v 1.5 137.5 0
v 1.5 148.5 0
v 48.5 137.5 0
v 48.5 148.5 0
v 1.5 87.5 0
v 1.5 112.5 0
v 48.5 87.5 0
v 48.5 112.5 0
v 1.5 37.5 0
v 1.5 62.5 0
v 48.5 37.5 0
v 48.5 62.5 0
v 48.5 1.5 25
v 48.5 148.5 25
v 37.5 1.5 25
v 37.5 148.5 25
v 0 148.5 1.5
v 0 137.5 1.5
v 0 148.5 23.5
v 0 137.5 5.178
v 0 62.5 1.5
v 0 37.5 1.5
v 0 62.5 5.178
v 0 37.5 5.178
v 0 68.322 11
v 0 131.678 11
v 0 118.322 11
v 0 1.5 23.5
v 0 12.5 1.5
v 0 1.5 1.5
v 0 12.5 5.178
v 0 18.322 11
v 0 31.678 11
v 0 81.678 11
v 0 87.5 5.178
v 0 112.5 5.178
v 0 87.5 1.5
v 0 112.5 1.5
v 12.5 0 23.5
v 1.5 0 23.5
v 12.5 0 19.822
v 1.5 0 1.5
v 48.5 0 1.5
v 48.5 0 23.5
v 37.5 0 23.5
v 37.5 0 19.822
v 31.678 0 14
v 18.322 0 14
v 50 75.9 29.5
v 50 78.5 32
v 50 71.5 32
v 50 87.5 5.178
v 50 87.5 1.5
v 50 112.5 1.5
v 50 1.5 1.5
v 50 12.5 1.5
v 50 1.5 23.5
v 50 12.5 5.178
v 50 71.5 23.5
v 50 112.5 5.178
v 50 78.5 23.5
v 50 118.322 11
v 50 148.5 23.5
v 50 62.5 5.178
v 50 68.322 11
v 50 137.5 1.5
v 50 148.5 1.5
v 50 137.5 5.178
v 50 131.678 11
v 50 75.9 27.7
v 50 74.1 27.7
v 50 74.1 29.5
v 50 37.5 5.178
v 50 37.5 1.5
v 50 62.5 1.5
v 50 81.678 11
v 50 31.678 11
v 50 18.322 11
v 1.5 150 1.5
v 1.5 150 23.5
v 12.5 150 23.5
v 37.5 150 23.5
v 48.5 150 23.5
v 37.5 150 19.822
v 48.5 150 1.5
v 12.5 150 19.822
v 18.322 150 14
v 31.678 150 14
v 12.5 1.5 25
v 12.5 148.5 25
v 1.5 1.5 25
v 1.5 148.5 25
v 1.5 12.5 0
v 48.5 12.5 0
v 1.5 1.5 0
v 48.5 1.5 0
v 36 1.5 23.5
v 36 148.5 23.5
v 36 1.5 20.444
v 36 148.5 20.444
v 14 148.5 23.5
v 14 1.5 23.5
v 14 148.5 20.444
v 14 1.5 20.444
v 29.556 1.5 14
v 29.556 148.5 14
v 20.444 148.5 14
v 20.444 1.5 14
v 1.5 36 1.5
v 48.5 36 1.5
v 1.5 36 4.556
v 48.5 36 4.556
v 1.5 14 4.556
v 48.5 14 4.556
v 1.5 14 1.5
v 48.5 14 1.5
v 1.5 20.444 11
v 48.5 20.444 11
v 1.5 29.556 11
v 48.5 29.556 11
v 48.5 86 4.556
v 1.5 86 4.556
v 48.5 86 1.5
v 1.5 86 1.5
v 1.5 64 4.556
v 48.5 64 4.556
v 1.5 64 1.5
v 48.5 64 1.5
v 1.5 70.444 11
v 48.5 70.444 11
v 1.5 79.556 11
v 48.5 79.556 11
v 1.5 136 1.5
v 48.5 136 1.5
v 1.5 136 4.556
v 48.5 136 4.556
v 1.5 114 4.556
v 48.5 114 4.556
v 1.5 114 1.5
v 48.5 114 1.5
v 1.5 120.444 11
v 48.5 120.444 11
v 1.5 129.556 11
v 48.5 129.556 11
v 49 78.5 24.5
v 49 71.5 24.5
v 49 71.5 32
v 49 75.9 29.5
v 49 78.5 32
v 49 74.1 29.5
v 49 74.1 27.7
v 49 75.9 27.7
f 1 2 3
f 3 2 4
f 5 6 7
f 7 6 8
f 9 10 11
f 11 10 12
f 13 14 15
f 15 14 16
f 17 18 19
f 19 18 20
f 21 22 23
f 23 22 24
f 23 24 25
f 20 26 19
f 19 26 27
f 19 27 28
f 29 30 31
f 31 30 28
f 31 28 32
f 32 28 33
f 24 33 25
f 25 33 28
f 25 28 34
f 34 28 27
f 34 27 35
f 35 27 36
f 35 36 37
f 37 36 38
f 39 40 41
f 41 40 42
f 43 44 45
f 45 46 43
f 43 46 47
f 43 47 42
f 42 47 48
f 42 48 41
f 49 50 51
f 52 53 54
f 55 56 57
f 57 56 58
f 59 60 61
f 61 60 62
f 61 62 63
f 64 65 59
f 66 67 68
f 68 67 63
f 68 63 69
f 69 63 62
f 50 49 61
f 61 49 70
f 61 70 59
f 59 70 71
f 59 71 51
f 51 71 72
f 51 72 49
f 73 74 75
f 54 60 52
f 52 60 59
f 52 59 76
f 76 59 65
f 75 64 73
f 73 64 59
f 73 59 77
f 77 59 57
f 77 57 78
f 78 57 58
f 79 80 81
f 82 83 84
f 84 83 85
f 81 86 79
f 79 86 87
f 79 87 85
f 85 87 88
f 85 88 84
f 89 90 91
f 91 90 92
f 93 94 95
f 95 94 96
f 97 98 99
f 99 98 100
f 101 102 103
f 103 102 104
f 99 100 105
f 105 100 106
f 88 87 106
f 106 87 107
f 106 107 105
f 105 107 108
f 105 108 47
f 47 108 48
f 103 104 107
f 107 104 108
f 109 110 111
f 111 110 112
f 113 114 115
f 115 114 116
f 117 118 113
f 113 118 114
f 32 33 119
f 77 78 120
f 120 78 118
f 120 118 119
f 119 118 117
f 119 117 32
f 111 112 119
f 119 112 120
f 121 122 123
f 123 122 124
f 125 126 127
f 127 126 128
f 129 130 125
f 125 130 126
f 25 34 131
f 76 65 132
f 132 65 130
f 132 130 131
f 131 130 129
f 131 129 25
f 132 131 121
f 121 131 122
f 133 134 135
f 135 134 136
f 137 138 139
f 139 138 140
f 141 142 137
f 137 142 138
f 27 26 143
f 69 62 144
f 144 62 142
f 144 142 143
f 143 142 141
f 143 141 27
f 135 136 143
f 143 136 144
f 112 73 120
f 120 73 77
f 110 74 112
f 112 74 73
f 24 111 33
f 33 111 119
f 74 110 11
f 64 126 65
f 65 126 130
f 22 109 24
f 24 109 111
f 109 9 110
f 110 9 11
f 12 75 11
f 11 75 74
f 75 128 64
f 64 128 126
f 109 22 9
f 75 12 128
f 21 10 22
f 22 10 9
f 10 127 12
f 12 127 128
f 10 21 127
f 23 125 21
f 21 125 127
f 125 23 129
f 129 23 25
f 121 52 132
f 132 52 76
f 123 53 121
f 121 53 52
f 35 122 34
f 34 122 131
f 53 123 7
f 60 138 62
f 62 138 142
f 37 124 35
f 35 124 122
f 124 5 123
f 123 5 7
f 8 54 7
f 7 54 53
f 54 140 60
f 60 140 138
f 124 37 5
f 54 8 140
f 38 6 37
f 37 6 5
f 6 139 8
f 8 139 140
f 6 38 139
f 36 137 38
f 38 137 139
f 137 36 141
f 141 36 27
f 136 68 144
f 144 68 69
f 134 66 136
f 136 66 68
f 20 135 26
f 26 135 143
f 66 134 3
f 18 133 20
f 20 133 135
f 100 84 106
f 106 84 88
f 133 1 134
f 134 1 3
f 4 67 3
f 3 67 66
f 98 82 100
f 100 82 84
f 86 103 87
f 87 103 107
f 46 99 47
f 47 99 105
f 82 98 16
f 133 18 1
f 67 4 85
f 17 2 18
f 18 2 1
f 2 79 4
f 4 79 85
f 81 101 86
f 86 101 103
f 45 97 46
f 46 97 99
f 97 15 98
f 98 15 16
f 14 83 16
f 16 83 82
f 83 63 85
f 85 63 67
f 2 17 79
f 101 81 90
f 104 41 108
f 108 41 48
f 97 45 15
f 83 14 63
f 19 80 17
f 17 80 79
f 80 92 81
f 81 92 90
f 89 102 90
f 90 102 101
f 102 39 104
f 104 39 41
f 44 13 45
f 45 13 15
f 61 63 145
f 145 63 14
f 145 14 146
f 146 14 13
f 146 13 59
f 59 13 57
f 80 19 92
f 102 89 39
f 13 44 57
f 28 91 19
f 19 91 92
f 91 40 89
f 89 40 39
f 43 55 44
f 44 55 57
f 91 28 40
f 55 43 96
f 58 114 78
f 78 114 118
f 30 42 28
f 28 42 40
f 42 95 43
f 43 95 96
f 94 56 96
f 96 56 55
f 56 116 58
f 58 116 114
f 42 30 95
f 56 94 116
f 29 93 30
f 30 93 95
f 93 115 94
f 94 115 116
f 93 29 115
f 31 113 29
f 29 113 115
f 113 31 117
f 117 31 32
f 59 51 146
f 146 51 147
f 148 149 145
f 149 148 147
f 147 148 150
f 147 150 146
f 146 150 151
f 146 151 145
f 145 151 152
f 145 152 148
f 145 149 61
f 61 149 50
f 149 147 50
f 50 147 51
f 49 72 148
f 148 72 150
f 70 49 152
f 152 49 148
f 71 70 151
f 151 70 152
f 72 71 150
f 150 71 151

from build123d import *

# Parameters (mm, degrees)
SKETCH1_W                = 50
SKETCH1_H                = 150
BOSS_EXTRUDE1_DEPTH      = 25
CUT_EXTRUDE1_DEPTH       = 161.078105936
CUT_EXTRUDE2_DEPTH       = 161.078105936
LPATTERN1_COUNT          = 3
LPATTERN1_PITCH          = 50
CHAMFER1_SIZE            = 1.5
BOSS_EXTRUDE2_DEPTH      = 7
BOSS_EXTRUDE2_DEPTH_BACK = 10
SKETCH4_W                = 1
SKETCH4_H                = 7
SKETCH5_W                = 1.8
SKETCH5_H                = 1.8
CUT_EXTRUDE3_DEPTH       = 7


with BuildPart() as part:
    # Sketch1 → Boss-Extrude1 (new body)
    with BuildSketch(Plane.XY):
        with Locations((25, 75)):
            Rectangle(SKETCH1_W, SKETCH1_H)
    extrude(amount=BOSS_EXTRUDE1_DEPTH)

    # Sketch2 → Cut-Extrude1 (cut, through all)
    with BuildSketch(Plane.XZ):
        Polygon((29.556349186, 36), (20.443650814, 36), (14, 29.556349186), (14, 20.443650814), (20.443650814, 14), (29.556349186, 14), (36, 20.443650814), (36, 29.556349186), align=None)
    extrude(amount=-CUT_EXTRUDE1_DEPTH, mode=Mode.SUBTRACT)

    # Sketch3 → Cut-Extrude2 (cut, through all)
    with BuildSketch(Plane(origin=(50, 0, 0), x_dir=(0, 0, -1), z_dir=(1, 0, 0))):
        Polygon((-4.556349186, 36), (-11, 29.556349186), (-11, 20.443650814), (-4.556349186, 14), (4.556349186, 14), (11, 20.443650814), (11, 29.556349186), (4.556349186, 36), align=None)
    cut_extrude2 = extrude(amount=-CUT_EXTRUDE2_DEPTH, mode=Mode.SUBTRACT)

    # LPattern1: Cut-Extrude2 ×3
    with Locations(*[(0, i * LPATTERN1_PITCH, 0) for i in range(1, LPATTERN1_COUNT)]):
        add(cut_extrude2, mode=Mode.SUBTRACT)

    # Chamfer1
    chamfer1_edges = [part.edges().sort_by_distance(p)[0] for p in [
        (50, 75, 25),
        (50, 143, 0),
        (50, 136, 2.278174593),
        (0, 100, 0),
        (25, 136, 0),
        (25, 114, 0),
        (0, 136, 2.278174593),
        (0, 114, 2.278174593),
        (0, 117.221825407, 7.778174593),
        (0, 132.778174593, 7.778174593),
        (50, 132.778174593, 7.778174593),
        (50, 117.221825407, 7.778174593),
        (50, 114, 2.278174593),
        (43, 150, 25),
        (43, 0, 25),
        (7, 150, 25),
        (14, 75, 25),
        (36, 75, 25),
        (36, 150, 22.721825407),
        (14, 150, 22.721825407),
        (36, 0, 22.721825407),
        (14, 0, 22.721825407),
        (17.221825407, 0, 17.221825407),
        (32.778174593, 0, 17.221825407),
        (32.778174593, 150, 17.221825407),
        (17.221825407, 150, 17.221825407),
        (0, 75, 25),
        (25, 150, 0),
        (50, 7, 0),
        (25, 0, 0),
        (0, 7, 0),
        (50, 50, 0),
        (25, 14, 0),
        (25, 36, 0),
        (0, 143, 0),
        (0, 36, 2.278174593),
        (0, 14, 2.278174593),
        (0, 17.221825407, 7.778174593),
        (0, 32.778174593, 7.778174593),
        (50, 36, 2.278174593),
        (50, 32.778174593, 7.778174593),
        (50, 17.221825407, 7.778174593),
        (50, 14, 2.278174593),
        (7, 0, 25),
        (0, 150, 12.5),
        (50, 150, 12.5),
        (50, 0, 12.5),
        (0, 0, 12.5),
        (50, 100, 0),
        (50, 86, 2.278174593),
        (0, 50, 0),
        (25, 86, 0),
        (25, 64, 0),
        (0, 86, 2.278174593),
        (0, 64, 2.278174593),
        (0, 67.221825407, 7.778174593),
        (0, 82.778174593, 7.778174593),
        (50, 82.778174593, 7.778174593),
        (50, 67.221825407, 7.778174593),
        (50, 64, 2.278174593),
    ]]
    chamfer(chamfer1_edges, length=CHAMFER1_SIZE)

    # Sketch4 → Boss-Extrude2 (add, two sides: drawn at the far end of the back side and taken through both)
    with BuildSketch(Plane.XY.offset(25).offset(-BOSS_EXTRUDE2_DEPTH_BACK)):
        with Locations((49.5, 75)):
            Rectangle(SKETCH4_W, SKETCH4_H)
    extrude(amount=BOSS_EXTRUDE2_DEPTH + BOSS_EXTRUDE2_DEPTH_BACK)

    # Sketch5 → Cut-Extrude3 (cut)
    with BuildSketch(Plane(origin=(50, 0, 0), x_dir=(0, 0, -1), z_dir=(1, 0, 0))):
        with Locations((-28.6, 75)):
            Rectangle(SKETCH5_W, SKETCH5_H)
    extrude(amount=-CUT_EXTRUDE3_DEPTH, mode=Mode.SUBTRACT)


solid = part.part
